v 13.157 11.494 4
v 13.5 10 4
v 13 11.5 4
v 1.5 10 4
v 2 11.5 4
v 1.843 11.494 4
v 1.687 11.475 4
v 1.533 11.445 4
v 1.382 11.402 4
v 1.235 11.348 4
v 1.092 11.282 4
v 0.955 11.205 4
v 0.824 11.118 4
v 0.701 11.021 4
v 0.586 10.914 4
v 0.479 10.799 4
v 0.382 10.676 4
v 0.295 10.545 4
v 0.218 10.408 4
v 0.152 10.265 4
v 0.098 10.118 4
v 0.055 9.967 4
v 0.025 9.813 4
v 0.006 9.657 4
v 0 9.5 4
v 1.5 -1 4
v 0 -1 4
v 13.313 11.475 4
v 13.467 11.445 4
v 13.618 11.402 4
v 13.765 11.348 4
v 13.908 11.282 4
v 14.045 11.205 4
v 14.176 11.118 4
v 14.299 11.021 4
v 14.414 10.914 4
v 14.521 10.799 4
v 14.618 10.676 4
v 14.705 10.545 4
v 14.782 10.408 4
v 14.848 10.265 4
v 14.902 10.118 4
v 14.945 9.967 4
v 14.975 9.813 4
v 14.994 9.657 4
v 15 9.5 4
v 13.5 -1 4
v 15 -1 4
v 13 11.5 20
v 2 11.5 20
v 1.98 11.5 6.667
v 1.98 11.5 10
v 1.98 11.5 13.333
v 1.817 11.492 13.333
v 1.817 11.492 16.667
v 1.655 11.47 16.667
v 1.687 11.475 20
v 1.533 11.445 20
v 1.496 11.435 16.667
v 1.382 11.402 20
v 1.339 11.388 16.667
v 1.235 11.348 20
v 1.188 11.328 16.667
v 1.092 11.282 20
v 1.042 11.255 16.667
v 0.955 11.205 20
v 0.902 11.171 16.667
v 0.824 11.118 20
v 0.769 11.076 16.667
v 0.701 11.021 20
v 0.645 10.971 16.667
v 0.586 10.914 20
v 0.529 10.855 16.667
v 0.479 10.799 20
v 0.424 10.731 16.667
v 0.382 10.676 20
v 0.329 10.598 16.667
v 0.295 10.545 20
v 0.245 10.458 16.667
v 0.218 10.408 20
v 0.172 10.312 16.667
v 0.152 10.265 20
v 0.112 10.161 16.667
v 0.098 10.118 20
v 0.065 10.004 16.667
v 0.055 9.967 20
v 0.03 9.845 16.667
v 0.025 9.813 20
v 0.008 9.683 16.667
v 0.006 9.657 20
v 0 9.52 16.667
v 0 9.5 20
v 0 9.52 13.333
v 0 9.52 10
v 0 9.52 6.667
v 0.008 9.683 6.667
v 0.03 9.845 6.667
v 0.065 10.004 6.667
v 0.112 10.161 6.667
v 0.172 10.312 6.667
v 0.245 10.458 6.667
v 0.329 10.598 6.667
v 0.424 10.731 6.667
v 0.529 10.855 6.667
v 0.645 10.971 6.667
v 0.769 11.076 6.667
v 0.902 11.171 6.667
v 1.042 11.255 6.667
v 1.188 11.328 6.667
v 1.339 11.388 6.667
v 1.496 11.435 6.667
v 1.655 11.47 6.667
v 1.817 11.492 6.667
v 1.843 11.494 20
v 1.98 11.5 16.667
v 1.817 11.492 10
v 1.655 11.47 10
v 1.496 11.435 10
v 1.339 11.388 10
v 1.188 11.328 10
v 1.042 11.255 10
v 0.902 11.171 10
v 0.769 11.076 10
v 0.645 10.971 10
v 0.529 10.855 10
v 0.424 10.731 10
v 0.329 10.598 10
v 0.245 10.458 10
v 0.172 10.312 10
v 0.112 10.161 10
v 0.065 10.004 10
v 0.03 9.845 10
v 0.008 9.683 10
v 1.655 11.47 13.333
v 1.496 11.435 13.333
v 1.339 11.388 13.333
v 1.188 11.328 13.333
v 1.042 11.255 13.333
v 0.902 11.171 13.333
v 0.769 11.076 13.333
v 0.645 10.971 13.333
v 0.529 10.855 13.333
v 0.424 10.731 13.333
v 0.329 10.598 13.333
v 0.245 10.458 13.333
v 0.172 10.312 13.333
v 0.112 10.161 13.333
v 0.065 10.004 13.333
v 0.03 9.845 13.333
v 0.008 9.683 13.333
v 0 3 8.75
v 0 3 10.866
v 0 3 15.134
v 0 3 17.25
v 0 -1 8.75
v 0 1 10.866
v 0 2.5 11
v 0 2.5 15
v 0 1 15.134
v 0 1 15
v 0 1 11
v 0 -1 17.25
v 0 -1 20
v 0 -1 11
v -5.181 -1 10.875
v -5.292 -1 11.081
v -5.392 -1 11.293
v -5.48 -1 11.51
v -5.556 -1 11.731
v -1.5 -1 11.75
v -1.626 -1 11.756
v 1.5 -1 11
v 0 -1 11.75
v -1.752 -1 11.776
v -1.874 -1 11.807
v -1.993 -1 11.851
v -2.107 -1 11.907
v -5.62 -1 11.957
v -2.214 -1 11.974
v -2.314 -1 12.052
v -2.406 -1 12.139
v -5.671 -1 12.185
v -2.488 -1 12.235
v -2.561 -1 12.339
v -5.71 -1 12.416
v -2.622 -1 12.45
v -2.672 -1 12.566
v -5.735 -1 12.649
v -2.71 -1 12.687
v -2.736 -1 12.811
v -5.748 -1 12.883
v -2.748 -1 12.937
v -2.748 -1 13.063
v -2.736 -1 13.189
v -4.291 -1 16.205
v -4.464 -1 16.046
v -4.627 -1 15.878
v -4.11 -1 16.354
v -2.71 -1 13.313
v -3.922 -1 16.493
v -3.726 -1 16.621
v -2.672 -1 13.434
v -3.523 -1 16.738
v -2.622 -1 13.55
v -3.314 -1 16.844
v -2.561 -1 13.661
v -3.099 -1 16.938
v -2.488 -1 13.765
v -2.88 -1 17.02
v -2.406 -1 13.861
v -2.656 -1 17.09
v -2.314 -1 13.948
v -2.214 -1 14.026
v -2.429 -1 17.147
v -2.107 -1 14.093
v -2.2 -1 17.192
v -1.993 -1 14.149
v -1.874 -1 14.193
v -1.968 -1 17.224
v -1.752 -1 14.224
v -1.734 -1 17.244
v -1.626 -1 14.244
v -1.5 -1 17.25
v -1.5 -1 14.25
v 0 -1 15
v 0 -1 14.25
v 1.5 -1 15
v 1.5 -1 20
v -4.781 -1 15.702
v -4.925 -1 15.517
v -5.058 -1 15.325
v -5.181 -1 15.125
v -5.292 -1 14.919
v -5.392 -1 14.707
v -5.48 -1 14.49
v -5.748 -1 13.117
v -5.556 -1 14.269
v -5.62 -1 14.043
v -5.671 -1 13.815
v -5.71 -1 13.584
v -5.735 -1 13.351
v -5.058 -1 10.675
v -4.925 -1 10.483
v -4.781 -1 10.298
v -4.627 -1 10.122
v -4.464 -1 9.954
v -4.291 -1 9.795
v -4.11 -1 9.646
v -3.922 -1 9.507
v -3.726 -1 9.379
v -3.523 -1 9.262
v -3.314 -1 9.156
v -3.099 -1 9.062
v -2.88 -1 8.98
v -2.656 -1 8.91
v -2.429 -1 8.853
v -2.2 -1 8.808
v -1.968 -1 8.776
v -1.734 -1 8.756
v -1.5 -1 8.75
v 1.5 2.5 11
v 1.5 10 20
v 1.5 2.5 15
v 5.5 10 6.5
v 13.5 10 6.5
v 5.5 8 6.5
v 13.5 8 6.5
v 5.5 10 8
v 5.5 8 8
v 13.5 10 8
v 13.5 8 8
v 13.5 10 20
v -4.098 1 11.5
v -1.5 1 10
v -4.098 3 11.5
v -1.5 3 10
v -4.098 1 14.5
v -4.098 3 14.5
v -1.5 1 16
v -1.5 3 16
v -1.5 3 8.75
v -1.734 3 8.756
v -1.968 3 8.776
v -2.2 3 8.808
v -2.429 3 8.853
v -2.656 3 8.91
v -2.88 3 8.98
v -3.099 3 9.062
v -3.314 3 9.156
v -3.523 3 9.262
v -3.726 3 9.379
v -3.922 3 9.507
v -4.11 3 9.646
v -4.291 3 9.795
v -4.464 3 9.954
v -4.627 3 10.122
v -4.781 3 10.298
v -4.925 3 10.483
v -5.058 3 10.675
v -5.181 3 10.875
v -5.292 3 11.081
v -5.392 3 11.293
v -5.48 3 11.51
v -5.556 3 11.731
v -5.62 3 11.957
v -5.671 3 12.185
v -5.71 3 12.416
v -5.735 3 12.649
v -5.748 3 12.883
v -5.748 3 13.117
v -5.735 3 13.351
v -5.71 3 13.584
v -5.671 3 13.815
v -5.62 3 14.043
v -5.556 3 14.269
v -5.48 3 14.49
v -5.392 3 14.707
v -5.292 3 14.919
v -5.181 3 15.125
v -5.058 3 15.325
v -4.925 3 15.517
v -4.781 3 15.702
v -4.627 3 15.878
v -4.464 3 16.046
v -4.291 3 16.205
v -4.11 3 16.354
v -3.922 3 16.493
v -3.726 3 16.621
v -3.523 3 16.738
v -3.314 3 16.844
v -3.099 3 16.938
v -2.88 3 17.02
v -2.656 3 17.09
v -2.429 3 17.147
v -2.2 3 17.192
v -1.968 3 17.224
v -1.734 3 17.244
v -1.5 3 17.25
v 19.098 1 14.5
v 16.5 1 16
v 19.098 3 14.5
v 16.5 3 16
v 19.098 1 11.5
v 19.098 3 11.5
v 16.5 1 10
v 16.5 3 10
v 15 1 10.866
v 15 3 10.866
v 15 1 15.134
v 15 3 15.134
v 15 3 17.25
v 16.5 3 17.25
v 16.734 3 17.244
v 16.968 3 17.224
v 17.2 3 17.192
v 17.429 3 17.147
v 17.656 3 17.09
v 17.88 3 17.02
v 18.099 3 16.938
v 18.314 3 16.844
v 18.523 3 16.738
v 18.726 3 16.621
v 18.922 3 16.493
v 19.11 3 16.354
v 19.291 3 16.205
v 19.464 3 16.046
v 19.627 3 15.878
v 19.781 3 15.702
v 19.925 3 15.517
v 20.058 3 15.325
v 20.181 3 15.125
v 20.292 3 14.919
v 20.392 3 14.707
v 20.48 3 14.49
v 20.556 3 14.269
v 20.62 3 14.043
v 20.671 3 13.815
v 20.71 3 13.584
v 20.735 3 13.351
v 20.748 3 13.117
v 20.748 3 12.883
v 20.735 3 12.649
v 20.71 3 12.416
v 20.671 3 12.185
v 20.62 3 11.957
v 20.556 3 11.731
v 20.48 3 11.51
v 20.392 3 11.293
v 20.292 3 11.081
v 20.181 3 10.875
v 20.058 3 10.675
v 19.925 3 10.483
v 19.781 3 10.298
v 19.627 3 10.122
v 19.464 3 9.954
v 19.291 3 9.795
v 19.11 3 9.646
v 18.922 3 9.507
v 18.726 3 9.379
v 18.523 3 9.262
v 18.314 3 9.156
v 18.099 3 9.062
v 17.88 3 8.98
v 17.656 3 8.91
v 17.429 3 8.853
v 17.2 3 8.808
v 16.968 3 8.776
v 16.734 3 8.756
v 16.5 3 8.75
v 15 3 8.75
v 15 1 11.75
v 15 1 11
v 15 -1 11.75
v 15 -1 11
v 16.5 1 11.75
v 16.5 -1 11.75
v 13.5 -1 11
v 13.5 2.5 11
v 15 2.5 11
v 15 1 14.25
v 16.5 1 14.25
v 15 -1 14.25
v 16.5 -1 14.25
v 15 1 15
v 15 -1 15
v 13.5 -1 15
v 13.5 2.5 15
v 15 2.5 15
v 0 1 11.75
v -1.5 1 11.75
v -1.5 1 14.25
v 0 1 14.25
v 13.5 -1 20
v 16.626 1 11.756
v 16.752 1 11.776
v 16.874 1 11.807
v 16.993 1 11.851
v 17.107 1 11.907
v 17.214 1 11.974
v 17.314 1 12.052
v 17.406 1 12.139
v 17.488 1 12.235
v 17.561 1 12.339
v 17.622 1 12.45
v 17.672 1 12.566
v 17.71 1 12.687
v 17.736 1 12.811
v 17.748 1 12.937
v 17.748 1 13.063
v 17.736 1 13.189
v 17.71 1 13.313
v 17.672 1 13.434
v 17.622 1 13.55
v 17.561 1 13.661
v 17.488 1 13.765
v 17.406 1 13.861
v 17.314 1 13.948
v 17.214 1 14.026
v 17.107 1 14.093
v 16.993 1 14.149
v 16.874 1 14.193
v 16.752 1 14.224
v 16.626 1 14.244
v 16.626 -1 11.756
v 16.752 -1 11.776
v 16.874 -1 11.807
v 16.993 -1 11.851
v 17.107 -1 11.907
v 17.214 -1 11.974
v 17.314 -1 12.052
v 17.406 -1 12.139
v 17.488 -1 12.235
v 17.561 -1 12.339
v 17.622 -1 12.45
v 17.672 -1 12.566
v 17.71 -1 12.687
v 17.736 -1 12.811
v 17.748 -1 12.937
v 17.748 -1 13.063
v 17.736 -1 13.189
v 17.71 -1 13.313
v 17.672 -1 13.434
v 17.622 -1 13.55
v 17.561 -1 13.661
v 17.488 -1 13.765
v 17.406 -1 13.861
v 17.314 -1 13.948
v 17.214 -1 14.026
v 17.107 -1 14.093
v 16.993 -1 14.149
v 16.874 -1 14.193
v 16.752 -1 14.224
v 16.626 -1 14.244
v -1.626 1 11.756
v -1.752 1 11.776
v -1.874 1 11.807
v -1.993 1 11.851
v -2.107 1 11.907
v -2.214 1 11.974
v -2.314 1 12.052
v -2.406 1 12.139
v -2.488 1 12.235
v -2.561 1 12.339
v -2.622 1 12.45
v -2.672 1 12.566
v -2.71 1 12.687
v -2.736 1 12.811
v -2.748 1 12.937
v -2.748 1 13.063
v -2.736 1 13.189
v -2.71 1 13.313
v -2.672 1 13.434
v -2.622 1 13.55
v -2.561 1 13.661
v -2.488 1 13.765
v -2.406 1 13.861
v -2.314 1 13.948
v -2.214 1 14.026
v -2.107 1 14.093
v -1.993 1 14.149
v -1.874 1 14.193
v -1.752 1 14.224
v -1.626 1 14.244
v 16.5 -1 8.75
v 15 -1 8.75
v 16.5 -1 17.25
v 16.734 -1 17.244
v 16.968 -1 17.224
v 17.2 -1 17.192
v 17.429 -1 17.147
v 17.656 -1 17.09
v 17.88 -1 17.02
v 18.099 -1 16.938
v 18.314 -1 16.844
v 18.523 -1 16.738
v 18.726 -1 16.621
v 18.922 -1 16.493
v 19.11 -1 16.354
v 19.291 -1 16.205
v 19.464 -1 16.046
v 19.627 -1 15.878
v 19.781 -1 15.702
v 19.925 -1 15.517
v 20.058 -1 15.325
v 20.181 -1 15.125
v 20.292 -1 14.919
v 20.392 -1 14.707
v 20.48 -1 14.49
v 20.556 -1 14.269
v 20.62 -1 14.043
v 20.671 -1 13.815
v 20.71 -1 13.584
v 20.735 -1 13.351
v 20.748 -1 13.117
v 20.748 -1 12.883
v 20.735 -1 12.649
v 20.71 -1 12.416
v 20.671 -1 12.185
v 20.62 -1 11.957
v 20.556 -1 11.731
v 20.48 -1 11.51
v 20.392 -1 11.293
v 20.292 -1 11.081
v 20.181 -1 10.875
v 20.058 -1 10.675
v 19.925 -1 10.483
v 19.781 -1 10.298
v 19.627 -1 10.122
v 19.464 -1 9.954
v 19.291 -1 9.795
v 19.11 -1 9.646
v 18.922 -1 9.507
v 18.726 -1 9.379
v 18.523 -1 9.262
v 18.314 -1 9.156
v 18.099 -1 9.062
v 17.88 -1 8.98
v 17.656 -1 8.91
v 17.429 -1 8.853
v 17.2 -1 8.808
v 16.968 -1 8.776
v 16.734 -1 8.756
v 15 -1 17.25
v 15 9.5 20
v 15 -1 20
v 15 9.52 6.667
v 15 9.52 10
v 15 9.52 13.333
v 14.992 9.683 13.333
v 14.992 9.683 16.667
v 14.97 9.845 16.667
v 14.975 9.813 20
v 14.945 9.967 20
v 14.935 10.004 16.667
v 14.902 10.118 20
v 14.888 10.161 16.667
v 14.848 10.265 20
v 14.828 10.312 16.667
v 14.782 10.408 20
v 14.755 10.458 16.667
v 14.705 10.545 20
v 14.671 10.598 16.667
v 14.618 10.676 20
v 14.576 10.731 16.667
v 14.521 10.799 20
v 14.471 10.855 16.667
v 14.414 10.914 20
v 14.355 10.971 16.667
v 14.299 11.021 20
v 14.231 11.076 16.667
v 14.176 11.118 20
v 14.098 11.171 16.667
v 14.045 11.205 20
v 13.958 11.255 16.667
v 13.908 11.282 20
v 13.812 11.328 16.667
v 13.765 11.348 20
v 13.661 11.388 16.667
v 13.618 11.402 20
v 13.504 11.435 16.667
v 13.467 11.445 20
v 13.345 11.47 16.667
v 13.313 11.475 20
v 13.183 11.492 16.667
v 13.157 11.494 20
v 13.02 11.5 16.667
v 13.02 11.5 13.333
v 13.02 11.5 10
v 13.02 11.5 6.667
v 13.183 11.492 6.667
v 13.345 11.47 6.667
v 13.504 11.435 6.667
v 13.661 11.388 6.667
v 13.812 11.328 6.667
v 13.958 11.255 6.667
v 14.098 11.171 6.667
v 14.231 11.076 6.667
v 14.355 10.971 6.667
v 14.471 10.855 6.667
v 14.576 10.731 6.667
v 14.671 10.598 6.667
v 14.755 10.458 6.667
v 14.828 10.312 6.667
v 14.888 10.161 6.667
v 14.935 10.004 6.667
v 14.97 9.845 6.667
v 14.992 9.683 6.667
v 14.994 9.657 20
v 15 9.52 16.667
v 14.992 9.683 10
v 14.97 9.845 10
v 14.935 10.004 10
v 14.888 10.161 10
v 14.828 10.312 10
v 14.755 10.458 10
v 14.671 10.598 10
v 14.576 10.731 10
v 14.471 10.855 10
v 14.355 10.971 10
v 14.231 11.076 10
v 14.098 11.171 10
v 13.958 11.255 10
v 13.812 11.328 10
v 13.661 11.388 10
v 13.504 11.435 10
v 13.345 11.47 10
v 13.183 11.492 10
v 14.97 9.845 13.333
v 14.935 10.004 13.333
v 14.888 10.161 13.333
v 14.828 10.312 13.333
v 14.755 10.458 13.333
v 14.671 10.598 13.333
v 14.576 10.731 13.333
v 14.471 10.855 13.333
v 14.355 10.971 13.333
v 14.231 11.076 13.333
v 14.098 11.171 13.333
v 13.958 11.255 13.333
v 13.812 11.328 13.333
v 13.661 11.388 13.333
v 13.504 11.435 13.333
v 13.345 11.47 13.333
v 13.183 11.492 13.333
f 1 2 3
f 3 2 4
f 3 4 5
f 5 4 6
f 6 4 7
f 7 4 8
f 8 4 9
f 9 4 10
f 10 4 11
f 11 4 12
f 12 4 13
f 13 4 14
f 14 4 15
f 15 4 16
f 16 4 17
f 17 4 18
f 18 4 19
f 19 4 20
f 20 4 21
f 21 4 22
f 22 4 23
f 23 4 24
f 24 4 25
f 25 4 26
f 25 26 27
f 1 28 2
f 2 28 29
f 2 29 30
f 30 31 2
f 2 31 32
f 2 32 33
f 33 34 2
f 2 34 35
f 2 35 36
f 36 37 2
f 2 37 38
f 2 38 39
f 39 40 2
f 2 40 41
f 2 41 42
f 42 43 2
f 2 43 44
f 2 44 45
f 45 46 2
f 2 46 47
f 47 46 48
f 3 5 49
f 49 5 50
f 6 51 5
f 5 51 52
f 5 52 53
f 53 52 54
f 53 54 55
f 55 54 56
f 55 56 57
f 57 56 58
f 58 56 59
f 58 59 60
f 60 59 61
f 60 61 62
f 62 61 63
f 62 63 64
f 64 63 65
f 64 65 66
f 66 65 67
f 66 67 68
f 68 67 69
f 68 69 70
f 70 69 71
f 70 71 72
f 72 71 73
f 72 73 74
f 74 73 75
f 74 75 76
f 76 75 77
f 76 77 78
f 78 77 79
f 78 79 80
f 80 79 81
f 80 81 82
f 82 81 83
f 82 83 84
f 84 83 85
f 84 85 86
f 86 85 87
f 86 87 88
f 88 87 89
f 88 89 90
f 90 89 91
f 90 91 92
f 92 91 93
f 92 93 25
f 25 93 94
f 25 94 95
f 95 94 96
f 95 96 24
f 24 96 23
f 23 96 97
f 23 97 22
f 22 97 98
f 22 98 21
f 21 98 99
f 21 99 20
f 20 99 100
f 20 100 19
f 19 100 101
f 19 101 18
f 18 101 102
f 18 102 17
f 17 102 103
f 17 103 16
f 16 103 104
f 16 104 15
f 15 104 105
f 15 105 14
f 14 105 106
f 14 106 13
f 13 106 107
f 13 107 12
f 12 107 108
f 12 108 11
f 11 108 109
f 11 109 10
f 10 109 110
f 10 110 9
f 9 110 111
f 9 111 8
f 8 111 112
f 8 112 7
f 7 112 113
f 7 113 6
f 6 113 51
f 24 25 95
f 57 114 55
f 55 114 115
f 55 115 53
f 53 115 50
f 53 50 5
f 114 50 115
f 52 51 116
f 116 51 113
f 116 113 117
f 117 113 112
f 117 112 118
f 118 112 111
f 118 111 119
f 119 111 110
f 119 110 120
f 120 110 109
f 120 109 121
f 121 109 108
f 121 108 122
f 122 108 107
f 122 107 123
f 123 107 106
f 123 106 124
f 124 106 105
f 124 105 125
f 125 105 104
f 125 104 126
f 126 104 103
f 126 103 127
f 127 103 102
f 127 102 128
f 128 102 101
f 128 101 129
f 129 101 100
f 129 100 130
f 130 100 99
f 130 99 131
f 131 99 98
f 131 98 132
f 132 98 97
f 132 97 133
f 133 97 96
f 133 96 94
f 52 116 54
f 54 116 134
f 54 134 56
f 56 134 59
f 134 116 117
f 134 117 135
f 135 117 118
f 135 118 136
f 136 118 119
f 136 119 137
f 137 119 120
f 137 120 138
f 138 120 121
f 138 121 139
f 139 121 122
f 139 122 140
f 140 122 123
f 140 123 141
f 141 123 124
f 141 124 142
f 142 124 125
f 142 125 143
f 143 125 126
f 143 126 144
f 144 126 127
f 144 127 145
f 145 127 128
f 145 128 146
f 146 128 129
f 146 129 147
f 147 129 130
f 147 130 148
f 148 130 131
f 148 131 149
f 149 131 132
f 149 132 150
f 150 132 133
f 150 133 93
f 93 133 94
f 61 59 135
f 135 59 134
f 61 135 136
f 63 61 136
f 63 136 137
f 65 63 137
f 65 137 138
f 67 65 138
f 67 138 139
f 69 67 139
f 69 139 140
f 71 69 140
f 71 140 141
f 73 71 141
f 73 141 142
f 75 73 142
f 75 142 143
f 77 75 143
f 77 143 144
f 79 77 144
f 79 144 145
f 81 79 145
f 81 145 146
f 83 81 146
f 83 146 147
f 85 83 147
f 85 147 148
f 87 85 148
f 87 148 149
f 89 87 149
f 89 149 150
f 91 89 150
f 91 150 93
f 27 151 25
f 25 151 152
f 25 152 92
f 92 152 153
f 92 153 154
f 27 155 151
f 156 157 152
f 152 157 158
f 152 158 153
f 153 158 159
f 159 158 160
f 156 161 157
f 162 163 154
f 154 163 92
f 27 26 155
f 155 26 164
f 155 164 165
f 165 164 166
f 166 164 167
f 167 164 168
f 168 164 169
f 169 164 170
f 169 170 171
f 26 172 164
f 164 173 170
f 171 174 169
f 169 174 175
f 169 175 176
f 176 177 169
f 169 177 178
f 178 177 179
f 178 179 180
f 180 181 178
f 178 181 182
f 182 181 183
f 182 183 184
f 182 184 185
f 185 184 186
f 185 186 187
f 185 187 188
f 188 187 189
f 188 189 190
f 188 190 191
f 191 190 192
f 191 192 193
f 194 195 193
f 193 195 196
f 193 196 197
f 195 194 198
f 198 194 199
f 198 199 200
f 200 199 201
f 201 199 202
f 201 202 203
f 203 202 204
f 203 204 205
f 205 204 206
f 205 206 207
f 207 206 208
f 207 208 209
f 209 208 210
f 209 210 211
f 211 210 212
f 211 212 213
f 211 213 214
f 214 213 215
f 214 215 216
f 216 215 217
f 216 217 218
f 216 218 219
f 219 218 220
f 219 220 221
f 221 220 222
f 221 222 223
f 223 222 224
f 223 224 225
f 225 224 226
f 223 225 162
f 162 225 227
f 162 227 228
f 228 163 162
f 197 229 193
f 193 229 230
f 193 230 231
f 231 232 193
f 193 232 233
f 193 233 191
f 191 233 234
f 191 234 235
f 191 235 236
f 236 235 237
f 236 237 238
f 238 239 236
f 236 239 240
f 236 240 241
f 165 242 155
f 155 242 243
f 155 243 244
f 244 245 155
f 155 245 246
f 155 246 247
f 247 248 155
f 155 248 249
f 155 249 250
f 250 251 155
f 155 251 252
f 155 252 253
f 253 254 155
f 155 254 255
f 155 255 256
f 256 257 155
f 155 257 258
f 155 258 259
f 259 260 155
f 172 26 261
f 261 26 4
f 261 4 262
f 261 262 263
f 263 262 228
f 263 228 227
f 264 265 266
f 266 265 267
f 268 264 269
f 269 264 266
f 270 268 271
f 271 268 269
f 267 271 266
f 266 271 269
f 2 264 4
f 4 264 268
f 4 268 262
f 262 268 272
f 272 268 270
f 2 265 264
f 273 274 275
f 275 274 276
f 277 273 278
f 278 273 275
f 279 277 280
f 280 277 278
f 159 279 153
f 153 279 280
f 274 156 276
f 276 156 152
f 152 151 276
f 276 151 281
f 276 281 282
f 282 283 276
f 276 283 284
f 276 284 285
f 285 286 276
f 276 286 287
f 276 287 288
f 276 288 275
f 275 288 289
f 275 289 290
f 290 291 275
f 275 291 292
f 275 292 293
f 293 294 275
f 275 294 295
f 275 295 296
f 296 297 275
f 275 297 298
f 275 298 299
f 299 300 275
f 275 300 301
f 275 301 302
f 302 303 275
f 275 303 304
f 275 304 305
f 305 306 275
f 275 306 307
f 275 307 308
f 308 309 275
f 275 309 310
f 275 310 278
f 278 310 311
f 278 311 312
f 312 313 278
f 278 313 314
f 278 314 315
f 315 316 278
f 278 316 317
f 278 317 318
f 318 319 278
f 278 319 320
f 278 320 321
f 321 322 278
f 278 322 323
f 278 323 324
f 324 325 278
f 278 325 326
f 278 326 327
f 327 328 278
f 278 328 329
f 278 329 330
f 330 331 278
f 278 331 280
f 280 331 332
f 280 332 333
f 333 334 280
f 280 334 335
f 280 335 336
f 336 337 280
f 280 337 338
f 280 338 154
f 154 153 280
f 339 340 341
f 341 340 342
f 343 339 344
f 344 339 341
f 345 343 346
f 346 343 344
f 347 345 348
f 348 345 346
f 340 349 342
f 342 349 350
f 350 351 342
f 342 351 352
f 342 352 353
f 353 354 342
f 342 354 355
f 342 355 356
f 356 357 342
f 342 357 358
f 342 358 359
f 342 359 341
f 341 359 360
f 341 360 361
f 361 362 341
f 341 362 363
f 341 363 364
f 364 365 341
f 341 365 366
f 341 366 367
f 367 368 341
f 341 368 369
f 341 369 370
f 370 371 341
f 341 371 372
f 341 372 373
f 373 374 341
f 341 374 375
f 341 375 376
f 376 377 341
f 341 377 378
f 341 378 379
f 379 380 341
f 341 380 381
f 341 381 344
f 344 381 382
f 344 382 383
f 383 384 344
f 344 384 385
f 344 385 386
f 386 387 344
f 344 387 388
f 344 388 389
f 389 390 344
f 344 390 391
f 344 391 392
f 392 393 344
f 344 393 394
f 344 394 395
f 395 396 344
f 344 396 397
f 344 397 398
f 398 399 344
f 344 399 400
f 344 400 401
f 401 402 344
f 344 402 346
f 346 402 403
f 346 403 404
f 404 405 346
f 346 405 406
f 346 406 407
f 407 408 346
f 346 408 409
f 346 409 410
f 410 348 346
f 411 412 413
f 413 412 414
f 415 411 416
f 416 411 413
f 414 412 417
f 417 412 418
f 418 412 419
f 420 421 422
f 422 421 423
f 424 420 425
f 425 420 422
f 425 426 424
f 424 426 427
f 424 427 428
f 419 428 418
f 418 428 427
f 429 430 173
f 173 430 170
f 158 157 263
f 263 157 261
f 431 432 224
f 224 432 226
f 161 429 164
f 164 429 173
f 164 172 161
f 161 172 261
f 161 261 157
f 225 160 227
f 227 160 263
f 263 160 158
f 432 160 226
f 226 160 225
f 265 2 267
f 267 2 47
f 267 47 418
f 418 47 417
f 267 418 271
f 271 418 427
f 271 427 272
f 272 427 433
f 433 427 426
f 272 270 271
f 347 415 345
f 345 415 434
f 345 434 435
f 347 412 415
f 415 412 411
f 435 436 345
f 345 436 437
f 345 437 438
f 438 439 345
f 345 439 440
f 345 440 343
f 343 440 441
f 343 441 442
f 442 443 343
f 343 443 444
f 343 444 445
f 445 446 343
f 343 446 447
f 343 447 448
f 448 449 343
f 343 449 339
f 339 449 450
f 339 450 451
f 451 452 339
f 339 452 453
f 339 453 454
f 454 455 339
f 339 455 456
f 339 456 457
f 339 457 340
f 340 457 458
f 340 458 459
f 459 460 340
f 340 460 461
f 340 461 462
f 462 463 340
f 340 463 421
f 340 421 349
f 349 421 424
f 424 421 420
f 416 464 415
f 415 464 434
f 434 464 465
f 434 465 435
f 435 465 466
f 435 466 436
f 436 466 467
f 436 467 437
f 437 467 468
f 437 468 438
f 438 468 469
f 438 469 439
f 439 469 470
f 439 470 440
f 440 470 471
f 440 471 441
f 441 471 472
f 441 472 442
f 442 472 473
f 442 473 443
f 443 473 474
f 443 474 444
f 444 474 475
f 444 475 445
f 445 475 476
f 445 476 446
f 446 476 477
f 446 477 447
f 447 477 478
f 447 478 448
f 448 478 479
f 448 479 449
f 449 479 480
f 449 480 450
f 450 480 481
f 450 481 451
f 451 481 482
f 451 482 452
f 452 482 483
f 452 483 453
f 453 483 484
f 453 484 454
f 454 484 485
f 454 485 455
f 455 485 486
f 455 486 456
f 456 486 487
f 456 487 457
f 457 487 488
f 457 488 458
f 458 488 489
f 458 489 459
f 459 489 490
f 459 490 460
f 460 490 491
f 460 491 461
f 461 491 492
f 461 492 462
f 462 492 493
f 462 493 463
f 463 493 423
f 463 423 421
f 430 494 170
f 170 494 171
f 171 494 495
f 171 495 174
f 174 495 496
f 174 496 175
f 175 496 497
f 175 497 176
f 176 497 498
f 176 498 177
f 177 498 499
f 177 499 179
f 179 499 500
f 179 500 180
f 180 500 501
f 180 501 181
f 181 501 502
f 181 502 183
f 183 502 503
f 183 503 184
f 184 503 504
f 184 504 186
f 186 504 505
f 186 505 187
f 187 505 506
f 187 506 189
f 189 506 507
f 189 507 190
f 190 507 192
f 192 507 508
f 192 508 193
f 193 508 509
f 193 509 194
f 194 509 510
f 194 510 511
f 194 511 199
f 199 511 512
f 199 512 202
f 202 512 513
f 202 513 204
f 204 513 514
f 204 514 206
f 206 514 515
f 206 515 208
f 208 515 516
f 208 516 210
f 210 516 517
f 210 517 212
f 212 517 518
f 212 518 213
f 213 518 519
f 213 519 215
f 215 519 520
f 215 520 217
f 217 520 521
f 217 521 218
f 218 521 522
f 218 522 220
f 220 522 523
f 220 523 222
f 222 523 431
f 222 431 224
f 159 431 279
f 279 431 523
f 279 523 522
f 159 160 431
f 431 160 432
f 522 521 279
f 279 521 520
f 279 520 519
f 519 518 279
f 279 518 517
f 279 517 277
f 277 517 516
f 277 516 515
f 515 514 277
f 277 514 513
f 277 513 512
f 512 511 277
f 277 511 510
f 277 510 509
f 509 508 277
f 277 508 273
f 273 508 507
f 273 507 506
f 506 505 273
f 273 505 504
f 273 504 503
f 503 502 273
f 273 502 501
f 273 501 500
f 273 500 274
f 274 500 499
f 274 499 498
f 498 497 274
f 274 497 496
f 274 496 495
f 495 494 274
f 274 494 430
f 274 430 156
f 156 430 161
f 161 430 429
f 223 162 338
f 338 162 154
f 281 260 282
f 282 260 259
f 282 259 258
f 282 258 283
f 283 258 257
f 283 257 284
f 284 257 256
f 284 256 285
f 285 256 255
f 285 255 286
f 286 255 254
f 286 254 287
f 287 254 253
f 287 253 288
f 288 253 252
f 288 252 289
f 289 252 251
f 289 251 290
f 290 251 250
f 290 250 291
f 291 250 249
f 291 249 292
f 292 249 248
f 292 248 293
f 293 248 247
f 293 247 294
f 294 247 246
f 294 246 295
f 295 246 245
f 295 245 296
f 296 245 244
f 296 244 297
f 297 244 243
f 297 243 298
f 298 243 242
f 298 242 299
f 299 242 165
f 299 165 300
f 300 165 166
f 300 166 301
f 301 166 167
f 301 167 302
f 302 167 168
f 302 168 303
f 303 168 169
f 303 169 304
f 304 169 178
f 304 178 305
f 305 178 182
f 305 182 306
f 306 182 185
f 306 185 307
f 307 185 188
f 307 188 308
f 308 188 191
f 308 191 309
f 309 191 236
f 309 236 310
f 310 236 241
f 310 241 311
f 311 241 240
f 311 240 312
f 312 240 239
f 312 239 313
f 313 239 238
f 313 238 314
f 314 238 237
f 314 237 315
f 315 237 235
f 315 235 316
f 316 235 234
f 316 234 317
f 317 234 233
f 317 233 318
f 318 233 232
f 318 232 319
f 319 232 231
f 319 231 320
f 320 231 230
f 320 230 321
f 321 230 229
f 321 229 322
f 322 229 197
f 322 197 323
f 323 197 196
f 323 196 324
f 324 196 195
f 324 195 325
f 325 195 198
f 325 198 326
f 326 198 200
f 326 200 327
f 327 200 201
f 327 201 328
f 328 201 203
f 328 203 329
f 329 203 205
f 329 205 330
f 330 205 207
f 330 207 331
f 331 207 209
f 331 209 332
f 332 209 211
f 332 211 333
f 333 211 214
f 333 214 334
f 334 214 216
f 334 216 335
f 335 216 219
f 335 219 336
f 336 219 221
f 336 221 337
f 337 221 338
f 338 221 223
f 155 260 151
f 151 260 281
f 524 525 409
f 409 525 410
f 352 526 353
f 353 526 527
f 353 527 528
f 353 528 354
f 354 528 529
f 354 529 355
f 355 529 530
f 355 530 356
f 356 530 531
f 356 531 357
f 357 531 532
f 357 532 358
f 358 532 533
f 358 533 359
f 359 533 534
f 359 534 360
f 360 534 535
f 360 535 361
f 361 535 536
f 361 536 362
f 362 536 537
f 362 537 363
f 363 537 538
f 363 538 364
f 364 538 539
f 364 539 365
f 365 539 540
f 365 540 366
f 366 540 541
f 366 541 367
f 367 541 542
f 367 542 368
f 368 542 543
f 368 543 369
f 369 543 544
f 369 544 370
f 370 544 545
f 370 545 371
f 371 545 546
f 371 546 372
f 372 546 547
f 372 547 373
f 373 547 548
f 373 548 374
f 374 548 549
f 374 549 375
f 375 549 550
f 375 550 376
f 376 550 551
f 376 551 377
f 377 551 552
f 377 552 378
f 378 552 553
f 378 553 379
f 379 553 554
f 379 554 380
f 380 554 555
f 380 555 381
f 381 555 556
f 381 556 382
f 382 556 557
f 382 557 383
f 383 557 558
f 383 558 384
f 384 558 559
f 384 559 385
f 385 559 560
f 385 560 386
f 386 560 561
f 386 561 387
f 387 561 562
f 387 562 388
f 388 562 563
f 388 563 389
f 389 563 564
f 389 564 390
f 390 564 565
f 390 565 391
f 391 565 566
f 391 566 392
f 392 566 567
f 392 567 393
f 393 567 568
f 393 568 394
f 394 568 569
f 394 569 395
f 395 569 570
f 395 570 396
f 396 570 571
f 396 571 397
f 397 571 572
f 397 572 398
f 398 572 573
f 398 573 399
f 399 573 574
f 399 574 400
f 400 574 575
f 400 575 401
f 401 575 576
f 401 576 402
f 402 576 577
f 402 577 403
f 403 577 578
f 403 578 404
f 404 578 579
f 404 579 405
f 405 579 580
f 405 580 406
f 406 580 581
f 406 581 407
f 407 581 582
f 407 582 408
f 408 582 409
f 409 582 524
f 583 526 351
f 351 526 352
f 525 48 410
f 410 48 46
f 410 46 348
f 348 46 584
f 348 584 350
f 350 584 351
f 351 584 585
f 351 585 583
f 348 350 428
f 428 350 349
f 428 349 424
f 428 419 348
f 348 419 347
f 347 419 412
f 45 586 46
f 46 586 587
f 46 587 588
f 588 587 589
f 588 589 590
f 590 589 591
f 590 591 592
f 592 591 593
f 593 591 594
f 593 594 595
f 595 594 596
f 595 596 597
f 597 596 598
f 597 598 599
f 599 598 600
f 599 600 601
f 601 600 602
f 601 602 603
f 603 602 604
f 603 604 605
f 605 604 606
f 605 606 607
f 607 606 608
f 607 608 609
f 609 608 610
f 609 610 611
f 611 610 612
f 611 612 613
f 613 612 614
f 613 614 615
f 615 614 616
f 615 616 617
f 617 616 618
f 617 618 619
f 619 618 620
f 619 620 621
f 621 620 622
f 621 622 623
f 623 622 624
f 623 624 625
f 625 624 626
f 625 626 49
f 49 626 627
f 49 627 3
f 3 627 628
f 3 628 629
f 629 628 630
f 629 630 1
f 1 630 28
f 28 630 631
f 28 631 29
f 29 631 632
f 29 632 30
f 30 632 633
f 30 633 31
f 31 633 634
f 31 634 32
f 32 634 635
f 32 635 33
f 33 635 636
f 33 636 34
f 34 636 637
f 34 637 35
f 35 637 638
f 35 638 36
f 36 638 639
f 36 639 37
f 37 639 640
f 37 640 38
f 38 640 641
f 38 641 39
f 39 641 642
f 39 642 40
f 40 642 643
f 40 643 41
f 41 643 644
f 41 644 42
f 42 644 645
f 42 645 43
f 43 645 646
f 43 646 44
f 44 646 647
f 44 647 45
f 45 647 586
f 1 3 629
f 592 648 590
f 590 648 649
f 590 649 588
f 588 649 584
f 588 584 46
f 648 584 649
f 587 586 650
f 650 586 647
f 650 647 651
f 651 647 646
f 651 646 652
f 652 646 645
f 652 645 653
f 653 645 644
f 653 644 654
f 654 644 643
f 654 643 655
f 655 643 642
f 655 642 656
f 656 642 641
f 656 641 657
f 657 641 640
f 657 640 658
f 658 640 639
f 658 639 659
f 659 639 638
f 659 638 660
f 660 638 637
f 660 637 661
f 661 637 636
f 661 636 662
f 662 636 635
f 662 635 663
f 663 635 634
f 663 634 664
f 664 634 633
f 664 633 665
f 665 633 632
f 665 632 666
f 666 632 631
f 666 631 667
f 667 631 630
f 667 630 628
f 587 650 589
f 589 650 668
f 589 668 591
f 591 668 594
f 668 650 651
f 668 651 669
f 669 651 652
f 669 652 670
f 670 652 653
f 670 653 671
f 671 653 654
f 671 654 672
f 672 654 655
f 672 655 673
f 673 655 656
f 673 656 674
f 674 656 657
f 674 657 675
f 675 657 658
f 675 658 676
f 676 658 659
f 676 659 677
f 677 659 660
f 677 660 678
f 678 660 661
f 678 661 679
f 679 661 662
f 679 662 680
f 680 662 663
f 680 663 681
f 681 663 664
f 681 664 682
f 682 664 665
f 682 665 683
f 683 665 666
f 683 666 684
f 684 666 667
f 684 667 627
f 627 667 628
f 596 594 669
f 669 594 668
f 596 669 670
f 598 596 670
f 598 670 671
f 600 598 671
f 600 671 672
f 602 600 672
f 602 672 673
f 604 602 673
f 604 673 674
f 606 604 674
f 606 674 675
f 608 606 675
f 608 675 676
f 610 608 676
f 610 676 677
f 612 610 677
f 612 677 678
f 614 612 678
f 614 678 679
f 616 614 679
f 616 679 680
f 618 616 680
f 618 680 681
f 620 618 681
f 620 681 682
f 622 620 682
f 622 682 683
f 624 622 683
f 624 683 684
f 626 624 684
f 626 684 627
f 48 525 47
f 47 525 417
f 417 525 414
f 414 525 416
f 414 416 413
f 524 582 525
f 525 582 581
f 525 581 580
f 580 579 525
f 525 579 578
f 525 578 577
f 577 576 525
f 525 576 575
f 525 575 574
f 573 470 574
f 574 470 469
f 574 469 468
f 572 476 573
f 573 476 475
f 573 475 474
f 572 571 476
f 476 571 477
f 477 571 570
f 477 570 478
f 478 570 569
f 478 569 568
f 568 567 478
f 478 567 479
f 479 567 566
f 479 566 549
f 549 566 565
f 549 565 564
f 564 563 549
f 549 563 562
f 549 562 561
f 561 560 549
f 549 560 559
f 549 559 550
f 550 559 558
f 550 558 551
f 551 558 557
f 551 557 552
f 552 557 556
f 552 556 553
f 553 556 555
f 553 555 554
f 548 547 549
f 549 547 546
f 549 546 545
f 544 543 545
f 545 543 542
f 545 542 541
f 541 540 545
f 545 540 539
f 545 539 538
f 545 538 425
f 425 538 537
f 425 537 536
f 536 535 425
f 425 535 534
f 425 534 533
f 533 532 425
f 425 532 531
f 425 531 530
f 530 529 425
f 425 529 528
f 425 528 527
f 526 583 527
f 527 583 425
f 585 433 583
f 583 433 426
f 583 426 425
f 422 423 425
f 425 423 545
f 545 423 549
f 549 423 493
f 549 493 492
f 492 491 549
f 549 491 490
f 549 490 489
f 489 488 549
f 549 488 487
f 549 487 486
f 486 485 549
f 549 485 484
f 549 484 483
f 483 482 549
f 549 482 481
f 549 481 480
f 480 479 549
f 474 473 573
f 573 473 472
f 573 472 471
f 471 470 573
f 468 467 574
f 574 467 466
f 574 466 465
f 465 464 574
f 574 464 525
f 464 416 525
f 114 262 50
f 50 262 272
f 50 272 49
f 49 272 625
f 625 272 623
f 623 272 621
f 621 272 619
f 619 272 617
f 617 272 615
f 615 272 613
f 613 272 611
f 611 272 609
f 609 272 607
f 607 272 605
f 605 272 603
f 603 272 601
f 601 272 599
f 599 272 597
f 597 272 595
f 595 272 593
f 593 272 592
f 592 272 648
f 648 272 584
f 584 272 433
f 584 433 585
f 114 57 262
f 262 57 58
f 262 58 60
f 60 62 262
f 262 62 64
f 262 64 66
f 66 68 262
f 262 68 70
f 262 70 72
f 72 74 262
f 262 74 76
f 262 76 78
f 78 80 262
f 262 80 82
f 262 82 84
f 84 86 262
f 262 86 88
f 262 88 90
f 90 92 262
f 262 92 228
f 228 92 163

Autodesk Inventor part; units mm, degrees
ref_plane "YZ Plane" through (0, 0, 0) normal (1, 0, 0) x (0, 1, 0)
ref_plane "XZ Plane" through (0, 0, 0) normal (0, 1, 0) x (-1, 0, 0)
ref_plane "XY Plane" through (0, 0, 0) normal (0, 0, 1) x (1, 0, 0)
sketch "Szkic1" plane through (0, 0, 0) normal (0, 0, 1) x (1, 0, 0)
  line L0 (0, 0) -> (15, 0)
  line L1 (15, 0) -> (15, 11.5)
  line L2 (15, 11.5) -> (0, 11.5)
  line L3 (0, 11.5) -> (0, 0)
  line L4 (1.5, 1.5) -> (13.5, 1.5)
  line L5 (13.5, 1.5) -> (13.5, 10)
  line L6 (13.5, 10) -> (1.5, 10)
  line L7 (1.5, 10) -> (1.5, 1.5)
  line L8 (1.5, 1.5) -> (1.5, 0)
  line L9 (13.5, 1.5) -> (13.5, 0)
  line L10 (0, 0) -> (15, 0)
  line L11 (15, 0) -> (15, -1)
  line L12 (15, -1) -> (0, -1)
  line L13 (0, -1) -> (0, 0)
  line L14 (13.5, 0) -> (13.5, -1)
  line L15 (1.5, 0) -> (1.5, -1)
  dimension "d0" = 15
  dimension "d1" = 11.5
  dimension "d2" = 1.5
  dimension "d3" = 1
extrude "Wyciągnięcie proste1" add sketch "Szkic1" along normal blind 20 contours L3 L2 L1 L0 L9 L5 L6 L7 L8 | L0 L15 L12 L13 | L0 L11 L12 L14
fillet "Zaokrąglenie1" radius 2 2 edges at (15, 11.5, 10) (0, 11.5, 10)
sketch "Szkic2" plane through (13.5, -1, 0) normal (0, -1, 0) x (1, 0, 0)
  line L0 (-13.5, 0) -> (-13.5, 20) projected
  line L1 (1.5, 0) -> (1.5, 20) projected
  line L2 (0, 0) -> (1.5, 0) projected
  circle A0 centre (3, 13) radius 1.25
  circle A1 centre (-15, 13) radius 1.25
  circle A2 centre (3, 13) radius 4.25
  circle A3 centre (-15, 13) radius 4.25
  line L3 (3, 8.75) -> (1.5, 8.75)
  line L4 (-15, 8.75) -> (-13.5, 8.75)
  line L5 (3, 17.25) -> (1.5, 17.25)
  line L6 (-15, 17.25) -> (-13.5, 17.25)
  dimension "d7" = 1.5
  dimension "d8" = 1.5
  dimension "d9" = 13
  dimension "d10" = 2.5
  dimension "d11" = 2.5
  dimension "d12" = 8.5
  dimension "d13" = 8.5
extrude "Wyciągnięcie proste2" add sketch "Szkic2" against normal blind 2 contours L4 A3 L0 | A3 L0 | A3 L6 L0 | L1 A2 L3 | L1 A2 | L1 L5 A2 picked at (-15.3893, 9.7942) picked at (6.2145, 12.6848)
sketch "Szkic3" plane through (0, -1, 0) normal (0, -1, 0) x (1, 0, 0)
  line L0 (1.5, 0) -> (1.5, 20) projected
  line L1 (1.5, 11) -> (0, 11)
  line L2 (0, 11) -> (0, 15)
  line L3 (0, 15) -> (1.5, 15)
  line L4 (1.5, 15) -> (1.5, 11)
  circle A0 centre (-1.5, 13) radius 1.25 projected
  line L5 (0, 0) -> (0, 20) projected
  line L6 (-1.5, 11.75) -> (0, 11.75)
  line L7 (0, 11.75) -> (0, 14.25)
  line L8 (0, 14.25) -> (-1.5, 14.25)
  line L9 (-1.5, 14.25) -> (-1.5, 11.75)
  line L10 (13.5, 0) -> (13.5, 20) projected
  line L11 (13.5, 11) -> (15, 11)
  line L12 (15, 11) -> (15, 15)
  line L13 (15, 15) -> (13.5, 15)
  line L14 (13.5, 15) -> (13.5, 11)
  circle A1 centre (16.5, 13) radius 1.25 projected
  line L15 (16.5, 11.75) -> (15, 11.75)
  line L16 (15, 11.75) -> (15, 14.25)
  line L17 (15, 14.25) -> (16.5, 14.25)
  line L18 (16.5, 14.25) -> (16.5, 11.75)
  dimension "d16" = 1.5
  dimension "d17" = 4
  dimension "d18" = 2
  dimension "d19" = 1.5
  dimension "d20" = 4
extrude "Wyciągnięcie proste3" cut sketch "Szkic3" against normal blind 3.5 contours L1 L2 L3 L0 | L6 A0 L8 L2 | L10 L13 L12 L11 | L12 L17 A1 L15 | L18 A1 | A1 L18
sketch "Szkic4" plane through (13.5, 1, 0) normal (0, 1, 0) x (1, 0, 0)
  arc A0 (-15, -11.75) -> (-15, -14.25) centre (-15, -13) ccw projected
  arc A1 (3, -14.25) -> (3, -11.75) centre (3, -13) ccw projected
  arc A2 (3, -17.25) -> (3, -8.75) centre (3, -13) ccw projected
  line L0 (3, -16) -> (0.4019, -14.5)
  line L1 (0.4019, -14.5) -> (0.4019, -11.5)
  line L2 (0.4019, -11.5) -> (3, -10)
  line L3 (3, -10) -> (5.5981, -11.5)
  line L4 (5.5981, -11.5) -> (5.5981, -14.5)
  line L5 (5.5981, -14.5) -> (3, -16)
  line L6 (-15, -16) -> (-17.5981, -14.5)
  line L7 (-17.5981, -14.5) -> (-17.5981, -11.5)
  line L8 (-17.5981, -11.5) -> (-15, -10)
  line L9 (-15, -10) -> (-12.4019, -11.5)
  line L10 (-12.4019, -11.5) -> (-12.4019, -14.5)
  line L11 (-12.4019, -14.5) -> (-15, -16)
  line L12 (1.5, -11.75) -> (3, -11.75) projected
  arc A3 (3, -14.25) -> (3, -11.75) centre (3, -13) ccw projected
  line L13 (3, -14.25) -> (1.5, -14.25) projected
  line L14 (1.5, -15) -> (1.5, -14.25) projected
  line L15 (1.5, -17.25) -> (1.5, -15) projected
  line L16 (1.5, -17.25) -> (3, -17.25) projected
  arc A4 (3, -17.25) -> (3, -8.75) centre (3, -13) ccw projected
  line L17 (3, -8.75) -> (1.5, -8.75) projected
  line L18 (1.5, -11) -> (1.5, -8.75) projected
  line L19 (1.5, -11.75) -> (1.5, -11) projected
  line L20 (-15, -11.75) -> (-13.5, -11.75) projected
  line L21 (-13.5, -11) -> (-13.5, -11.75) projected
  line L22 (-13.5, -8.75) -> (-13.5, -11) projected
  line L23 (-13.5, -8.75) -> (-15, -8.75) projected
  arc A5 (-15, -8.75) -> (-15, -17.25) centre (-15, -13) ccw projected
  line L24 (-15, -17.25) -> (-13.5, -17.25) projected
  line L25 (-13.5, -15) -> (-13.5, -17.25) projected
  line L26 (-13.5, -14.25) -> (-13.5, -15) projected
  line L27 (-13.5, -14.25) -> (-15, -14.25) projected
  arc A6 (-15, -11.75) -> (-15, -14.25) centre (-15, -13) ccw projected
  point P0 (-13.5, 0)
  point P1 (-13.5, -10.866)
  point P2 (-13.5, -15.134)
  point P3 (1.5, -15.134)
  point P4 (1.5, -10.866)
  dimension "d23" = 6
extrude "Wyciągnięcie proste4" add sketch "Szkic4" along normal blind 2 contours L9 L8 L7 L6 L11 L25 L24 A5 L23 L22 | L0 L5 L4 L3 L2 L18 L17 A2 L16 L15
sketch "Szkic5" plane through (1.5, 10, 0) normal (0, -1, 0) x (1, 0, 0)
  arc A0 (-3, 14.25) -> (-3, 11.75) centre (-3, 13) ccw projected
  arc A1 (15, 11.75) -> (15, 14.25) centre (15, 13) ccw projected
  line L0 (4, 6.5) -> (12, 6.5)
  line L1 (12, 6.5) -> (12, 8)
  line L2 (12, 8) -> (4, 8)
  line L3 (4, 8) -> (4, 6.5)
  line L4 (12, 0) -> (12, 20) projected
  point P0 (-1.5, 0)
  point P1 (12, 7.25)
  dimension "d26" = 8
  dimension "d27" = 1.5
  dimension "d28" = 5
extrude "Wyciągnięcie proste5" add sketch "Szkic5" along normal blind 2
sketch "Szkic6" plane through (2, 11.5, 0) normal (0, 1, 0) x (1, 0, 0)
  line L0 (-2, 0) -> (0, 0) projected
  line L1 (13, 0) -> (13, -8.75) projected
  line L2 (-2, 0) -> (13, 0)
  line L3 (13, 0) -> (13, -4)
  line L4 (13, -4) -> (-2, -4)
  line L5 (-2, -4) -> (-2, 0)
  dimension "d31" = 4
extrude "Wyciągnięcie proste6" cut sketch "Szkic6" against normal through all
properties part number "mocowanie_silnik"
